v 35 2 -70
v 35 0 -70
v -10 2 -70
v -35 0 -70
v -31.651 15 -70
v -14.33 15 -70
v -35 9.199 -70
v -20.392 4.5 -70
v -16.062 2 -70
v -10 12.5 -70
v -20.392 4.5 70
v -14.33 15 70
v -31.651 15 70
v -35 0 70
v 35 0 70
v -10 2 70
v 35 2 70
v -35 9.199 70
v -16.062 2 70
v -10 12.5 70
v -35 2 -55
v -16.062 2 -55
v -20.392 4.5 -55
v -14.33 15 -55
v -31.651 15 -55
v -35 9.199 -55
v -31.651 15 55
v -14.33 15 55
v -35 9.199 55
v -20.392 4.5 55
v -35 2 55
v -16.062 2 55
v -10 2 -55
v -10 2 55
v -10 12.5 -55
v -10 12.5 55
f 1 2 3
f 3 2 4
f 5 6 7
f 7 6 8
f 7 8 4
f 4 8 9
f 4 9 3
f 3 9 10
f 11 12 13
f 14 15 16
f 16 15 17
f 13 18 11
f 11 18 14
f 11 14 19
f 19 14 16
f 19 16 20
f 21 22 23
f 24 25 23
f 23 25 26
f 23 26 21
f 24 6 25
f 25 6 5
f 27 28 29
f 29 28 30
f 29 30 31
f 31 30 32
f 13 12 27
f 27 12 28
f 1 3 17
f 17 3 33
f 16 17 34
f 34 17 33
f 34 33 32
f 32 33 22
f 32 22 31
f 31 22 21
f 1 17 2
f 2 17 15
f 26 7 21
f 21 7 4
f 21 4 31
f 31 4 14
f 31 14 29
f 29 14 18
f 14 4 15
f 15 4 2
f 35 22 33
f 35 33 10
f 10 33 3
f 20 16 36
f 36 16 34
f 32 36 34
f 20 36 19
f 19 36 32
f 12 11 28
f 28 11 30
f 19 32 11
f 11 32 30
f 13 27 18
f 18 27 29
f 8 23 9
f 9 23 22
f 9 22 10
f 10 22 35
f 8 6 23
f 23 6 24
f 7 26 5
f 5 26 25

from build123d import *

# Parameters (mm, degrees)
SKIZZE1_W                       = 70
SKIZZE1_H                       = 140
AUFSATZ_LINEAR_AUSTRAGEN1_DEPTH = 2
SKIZZE2_W                       = 25
SKIZZE2_H                       = 15
AUFSATZ_LINEAR_AUSTRAGEN2_DEPTH = 13
SCHNITT_LINEAR_AUSTRAGEN1_DEPTH = 146.086181285


with BuildPart() as part:
    # Skizze1 → Aufsatz-Linear austragen1 (new body)
    with BuildSketch(Plane(origin=(0, 0, 0), x_dir=(1, 0, 0), z_dir=(0, 1, 0))):
        Rectangle(SKIZZE1_W, SKIZZE1_H)
    extrude(amount=AUFSATZ_LINEAR_AUSTRAGEN1_DEPTH)

    # Skizze2 → Aufsatz-Linear austragen2 (add)
    with BuildSketch(Plane(origin=(0, 2, 0), x_dir=(1, 0, 0), z_dir=(0, 1, 0))):
        with Locations((-22.5, 62.5)):
            Rectangle(SKIZZE2_W, SKIZZE2_H)
        with Locations((-22.5, -62.5)):
            Rectangle(SKIZZE2_W, SKIZZE2_H)
    extrude(amount=AUFSATZ_LINEAR_AUSTRAGEN2_DEPTH)

    # Skizze3 → Schnitt-Linear austragen1 (cut, through all)
    with BuildSketch(Plane.XY.offset(70)):
        Polygon((-35, 15), (-35, 9.198729811), (-31.650635095, 15), align=None)
        Polygon((-14.330127019, 15), (-20.392304845, 4.5), (-16.062177826, 2), (-10, 12.5), (-10, 15), align=None)
    extrude(amount=-SCHNITT_LINEAR_AUSTRAGEN1_DEPTH, mode=Mode.SUBTRACT)


solid = part.part
